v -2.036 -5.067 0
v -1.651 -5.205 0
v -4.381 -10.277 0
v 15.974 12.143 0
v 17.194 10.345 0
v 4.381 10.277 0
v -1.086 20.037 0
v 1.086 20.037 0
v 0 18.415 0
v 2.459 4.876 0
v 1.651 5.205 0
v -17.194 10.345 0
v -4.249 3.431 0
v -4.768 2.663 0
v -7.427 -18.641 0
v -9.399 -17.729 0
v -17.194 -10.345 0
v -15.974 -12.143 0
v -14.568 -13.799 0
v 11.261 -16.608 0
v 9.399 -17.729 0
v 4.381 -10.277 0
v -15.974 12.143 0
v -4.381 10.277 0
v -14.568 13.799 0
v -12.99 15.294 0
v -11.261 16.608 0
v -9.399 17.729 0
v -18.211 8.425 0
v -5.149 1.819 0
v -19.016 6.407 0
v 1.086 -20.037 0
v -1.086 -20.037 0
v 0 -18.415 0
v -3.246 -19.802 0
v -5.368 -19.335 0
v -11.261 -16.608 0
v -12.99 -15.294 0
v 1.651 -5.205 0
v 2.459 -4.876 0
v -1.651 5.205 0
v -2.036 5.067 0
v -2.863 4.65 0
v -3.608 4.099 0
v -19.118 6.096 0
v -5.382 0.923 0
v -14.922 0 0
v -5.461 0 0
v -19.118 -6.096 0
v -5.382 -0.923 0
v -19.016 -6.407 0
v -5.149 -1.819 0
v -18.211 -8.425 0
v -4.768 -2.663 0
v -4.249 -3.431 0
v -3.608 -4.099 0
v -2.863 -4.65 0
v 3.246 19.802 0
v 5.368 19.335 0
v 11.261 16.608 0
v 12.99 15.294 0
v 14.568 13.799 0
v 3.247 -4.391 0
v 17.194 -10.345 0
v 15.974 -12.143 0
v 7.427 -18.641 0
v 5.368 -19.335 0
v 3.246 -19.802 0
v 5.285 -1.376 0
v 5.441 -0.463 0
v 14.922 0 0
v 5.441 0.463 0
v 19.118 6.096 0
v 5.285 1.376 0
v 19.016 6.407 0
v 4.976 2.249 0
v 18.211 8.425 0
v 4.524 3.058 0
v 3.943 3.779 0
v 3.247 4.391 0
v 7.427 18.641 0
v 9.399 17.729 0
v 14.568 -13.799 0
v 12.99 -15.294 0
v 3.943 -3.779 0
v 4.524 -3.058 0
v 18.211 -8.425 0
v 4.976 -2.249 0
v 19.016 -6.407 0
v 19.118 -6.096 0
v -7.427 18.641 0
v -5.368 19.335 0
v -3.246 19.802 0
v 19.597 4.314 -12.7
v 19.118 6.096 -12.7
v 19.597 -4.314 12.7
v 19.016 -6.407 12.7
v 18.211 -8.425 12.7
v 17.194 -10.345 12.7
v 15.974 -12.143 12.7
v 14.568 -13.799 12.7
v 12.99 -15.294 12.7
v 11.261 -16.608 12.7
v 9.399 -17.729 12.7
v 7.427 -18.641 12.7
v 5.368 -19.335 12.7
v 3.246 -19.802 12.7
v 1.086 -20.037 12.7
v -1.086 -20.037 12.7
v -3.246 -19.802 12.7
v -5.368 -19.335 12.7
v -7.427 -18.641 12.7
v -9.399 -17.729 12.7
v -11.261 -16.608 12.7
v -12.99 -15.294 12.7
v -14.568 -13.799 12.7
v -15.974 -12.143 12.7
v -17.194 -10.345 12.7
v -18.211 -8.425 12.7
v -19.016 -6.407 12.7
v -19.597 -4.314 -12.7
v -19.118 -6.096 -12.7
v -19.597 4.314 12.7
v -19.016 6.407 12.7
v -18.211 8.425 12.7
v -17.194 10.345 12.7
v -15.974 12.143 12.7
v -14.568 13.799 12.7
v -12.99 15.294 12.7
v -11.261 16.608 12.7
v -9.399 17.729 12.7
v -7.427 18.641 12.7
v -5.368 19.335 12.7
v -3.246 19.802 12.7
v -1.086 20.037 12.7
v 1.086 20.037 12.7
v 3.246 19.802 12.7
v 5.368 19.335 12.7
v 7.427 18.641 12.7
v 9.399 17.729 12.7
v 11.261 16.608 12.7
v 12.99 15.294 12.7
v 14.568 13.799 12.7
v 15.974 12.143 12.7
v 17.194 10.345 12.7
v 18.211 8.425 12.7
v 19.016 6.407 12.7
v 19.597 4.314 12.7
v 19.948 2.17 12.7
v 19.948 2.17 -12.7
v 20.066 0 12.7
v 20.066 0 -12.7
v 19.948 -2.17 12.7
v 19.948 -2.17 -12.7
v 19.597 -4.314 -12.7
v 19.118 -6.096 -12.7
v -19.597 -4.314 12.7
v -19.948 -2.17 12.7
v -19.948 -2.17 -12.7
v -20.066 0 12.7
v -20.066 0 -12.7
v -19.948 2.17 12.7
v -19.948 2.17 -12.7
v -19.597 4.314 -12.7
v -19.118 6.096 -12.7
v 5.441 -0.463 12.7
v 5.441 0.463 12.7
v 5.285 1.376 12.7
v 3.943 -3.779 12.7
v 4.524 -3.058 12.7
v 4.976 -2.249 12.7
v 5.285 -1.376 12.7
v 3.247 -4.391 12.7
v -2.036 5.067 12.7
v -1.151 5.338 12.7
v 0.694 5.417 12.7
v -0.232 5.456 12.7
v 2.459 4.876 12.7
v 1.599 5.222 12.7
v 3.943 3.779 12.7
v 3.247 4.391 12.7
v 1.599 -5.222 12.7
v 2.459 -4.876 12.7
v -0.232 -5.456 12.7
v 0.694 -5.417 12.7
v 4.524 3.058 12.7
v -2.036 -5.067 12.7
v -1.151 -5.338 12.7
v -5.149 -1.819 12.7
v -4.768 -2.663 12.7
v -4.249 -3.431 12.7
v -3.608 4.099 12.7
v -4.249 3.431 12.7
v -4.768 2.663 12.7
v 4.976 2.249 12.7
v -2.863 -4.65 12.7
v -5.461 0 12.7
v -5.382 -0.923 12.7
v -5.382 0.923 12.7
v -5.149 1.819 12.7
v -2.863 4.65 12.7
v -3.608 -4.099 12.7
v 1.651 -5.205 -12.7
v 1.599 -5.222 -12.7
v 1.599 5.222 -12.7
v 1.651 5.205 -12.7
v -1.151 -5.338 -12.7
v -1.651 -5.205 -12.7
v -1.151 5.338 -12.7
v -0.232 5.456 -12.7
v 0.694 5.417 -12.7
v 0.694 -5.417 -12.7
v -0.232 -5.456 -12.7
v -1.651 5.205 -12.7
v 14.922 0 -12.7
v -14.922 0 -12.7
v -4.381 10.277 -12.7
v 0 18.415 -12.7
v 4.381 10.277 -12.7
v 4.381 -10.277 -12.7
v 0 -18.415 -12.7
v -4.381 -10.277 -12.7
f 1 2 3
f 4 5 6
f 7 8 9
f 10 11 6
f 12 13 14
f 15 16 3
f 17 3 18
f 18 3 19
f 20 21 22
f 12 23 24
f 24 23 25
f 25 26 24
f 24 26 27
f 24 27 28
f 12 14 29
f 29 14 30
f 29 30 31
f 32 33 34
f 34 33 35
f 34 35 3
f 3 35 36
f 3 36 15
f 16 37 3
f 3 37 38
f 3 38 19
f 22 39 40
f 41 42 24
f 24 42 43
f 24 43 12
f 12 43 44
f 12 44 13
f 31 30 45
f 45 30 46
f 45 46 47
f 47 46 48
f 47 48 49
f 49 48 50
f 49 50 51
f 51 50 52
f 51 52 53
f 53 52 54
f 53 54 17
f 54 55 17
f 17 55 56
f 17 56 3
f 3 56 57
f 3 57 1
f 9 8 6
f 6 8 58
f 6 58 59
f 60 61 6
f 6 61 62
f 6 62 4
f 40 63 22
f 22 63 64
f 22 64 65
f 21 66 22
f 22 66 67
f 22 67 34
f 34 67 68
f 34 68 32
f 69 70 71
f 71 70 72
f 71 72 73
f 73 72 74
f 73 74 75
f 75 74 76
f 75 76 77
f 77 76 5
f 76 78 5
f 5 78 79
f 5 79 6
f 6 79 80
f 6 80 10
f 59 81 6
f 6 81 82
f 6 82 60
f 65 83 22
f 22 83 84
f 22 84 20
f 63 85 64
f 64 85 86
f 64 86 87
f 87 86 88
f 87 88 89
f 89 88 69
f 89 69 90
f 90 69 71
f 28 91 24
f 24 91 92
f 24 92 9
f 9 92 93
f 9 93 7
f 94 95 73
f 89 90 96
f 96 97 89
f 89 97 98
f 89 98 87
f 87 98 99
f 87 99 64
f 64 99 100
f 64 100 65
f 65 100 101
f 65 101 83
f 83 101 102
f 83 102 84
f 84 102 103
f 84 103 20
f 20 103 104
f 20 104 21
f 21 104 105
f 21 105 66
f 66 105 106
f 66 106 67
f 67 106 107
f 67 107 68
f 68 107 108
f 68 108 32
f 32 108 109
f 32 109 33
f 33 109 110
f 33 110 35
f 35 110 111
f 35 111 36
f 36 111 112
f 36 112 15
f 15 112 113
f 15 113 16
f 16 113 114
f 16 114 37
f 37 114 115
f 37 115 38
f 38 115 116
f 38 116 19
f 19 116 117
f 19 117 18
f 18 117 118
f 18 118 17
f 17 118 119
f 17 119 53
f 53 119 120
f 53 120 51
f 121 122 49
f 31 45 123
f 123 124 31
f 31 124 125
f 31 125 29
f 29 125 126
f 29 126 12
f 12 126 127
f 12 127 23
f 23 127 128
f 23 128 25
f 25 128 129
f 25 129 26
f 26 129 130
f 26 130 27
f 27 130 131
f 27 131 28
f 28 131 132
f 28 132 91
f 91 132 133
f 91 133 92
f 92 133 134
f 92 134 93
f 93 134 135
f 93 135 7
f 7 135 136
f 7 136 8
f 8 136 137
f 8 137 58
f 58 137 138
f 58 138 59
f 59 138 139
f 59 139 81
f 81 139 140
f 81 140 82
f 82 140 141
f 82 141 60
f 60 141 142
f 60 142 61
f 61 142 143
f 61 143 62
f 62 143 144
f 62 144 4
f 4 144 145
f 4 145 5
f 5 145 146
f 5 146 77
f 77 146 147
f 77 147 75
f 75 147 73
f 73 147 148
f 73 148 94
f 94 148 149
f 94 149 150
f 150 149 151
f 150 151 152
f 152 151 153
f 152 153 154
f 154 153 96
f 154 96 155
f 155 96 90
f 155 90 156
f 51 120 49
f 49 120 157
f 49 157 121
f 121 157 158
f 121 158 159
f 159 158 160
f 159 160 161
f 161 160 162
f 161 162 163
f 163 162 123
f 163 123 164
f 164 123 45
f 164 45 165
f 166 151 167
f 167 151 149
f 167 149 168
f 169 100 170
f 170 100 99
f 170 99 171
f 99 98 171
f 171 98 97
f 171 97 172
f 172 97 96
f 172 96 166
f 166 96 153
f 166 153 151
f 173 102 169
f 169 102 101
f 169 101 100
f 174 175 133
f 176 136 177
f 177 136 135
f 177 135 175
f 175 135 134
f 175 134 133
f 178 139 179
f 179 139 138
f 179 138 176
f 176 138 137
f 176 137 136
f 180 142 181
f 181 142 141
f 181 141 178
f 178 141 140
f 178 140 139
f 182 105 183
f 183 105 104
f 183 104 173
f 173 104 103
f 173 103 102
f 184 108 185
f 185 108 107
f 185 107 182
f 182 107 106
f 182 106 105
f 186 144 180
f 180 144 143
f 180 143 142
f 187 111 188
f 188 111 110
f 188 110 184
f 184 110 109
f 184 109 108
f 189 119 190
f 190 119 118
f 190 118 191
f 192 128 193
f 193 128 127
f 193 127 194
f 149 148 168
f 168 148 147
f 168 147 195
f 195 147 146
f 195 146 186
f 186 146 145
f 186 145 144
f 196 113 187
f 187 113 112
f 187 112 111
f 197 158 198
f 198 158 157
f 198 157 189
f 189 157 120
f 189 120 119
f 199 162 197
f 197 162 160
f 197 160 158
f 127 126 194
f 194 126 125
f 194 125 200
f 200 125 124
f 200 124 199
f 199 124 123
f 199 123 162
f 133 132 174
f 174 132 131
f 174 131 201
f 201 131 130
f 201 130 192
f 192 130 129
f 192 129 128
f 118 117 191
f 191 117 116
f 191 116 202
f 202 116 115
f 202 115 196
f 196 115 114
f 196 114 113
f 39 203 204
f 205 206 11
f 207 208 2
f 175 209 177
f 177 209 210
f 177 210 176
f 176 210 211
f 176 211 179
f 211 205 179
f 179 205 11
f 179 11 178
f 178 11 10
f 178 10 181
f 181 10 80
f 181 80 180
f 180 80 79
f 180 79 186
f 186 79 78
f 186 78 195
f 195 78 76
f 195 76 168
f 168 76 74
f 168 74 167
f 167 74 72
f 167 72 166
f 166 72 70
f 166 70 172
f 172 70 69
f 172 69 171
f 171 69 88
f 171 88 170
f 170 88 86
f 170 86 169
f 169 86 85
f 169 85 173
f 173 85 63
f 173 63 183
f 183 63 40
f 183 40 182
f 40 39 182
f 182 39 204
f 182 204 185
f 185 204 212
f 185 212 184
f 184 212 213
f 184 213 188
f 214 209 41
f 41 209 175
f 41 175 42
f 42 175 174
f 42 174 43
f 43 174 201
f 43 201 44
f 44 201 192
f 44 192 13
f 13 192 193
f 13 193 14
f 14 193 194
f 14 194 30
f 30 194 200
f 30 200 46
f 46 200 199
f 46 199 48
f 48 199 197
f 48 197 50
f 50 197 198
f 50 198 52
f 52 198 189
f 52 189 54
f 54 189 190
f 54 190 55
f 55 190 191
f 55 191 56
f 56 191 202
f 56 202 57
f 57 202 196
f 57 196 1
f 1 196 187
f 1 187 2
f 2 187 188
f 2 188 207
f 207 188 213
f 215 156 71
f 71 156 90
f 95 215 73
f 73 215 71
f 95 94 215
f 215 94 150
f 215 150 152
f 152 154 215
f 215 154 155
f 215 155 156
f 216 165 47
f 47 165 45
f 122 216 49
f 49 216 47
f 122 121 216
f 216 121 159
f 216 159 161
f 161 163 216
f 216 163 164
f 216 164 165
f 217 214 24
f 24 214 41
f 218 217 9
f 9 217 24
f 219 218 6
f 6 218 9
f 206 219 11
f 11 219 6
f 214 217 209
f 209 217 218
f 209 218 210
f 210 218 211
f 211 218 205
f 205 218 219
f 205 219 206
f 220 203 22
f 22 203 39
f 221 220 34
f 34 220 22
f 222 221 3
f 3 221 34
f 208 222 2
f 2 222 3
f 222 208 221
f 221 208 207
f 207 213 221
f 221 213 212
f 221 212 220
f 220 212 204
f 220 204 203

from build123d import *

# Parameters (mm, degrees)
SKETCH1_R           = 20.066
BOSS_EXTRUDE1_DEPTH = 12.7
SKETCH2_R           = 5.461
CUT_EXTRUDE1_DEPTH  = 13.7
BOSS_EXTRUDE2_DEPTH = 12.7


with BuildPart() as part:
    # Sketch1 → Boss-Extrude1 (new body)
    with BuildSketch(Plane.XY):
        Circle(SKETCH1_R)
    extrude(amount=BOSS_EXTRUDE1_DEPTH)

    # Sketch2 → Cut-Extrude1 (cut, through all)
    with BuildSketch(Plane(origin=(0, 0, 0), x_dir=(-1, 0, 0), z_dir=(0, 0, -1))):
        Circle(SKETCH2_R)
    extrude(amount=-CUT_EXTRUDE1_DEPTH, mode=Mode.SUBTRACT)

    # Sketch3 → Boss-Extrude2 (add)
    with BuildSketch(Plane(origin=(0, 0, 0), x_dir=(-1, 0, 0), z_dir=(0, 0, -1))):
        with BuildLine():
            Line((-19.117613345, -6.096), (-14.9225, 0))
            Line((-14.9225, 0), (-19.117613345, 6.096))
            ThreePointArc((-19.117613345, 6.096), (-20.066, 0), (-19.117613345, -6.096))
        make_face()
        with BuildLine():
            Line((19.117613345, 6.096), (14.9225, 0))
            Line((14.9225, 0), (19.117613345, -6.096))
            ThreePointArc((19.117613345, -6.096), (20.066, 0), (19.117613345, 6.096))
        make_face()
        with BuildLine():
            Line((0, 18.415), (-4.3815, 10.27697427))
            Line((-4.3815, 10.27697427), (-1.651, 5.205450989))
            ThreePointArc((-1.651, 5.205450989), (0, 5.461), (1.651, 5.205450989))
            Line((1.651, 5.205450989), (4.3815, 10.27697427))
            Line((4.3815, 10.27697427), (0, 18.415))
        make_face()
        with BuildLine():
            Line((-1.651, -5.205450989), (-4.3815, -10.27697427))
            Line((-4.3815, -10.27697427), (0, -18.415))
            Line((0, -18.415), (4.3815, -10.27697427))
            Line((4.3815, -10.27697427), (1.651, -5.205450989))
            ThreePointArc((1.651, -5.205450989), (0, -5.461), (-1.651, -5.205450989))
        make_face()
    extrude(amount=BOSS_EXTRUDE2_DEPTH)


solid = part.part
